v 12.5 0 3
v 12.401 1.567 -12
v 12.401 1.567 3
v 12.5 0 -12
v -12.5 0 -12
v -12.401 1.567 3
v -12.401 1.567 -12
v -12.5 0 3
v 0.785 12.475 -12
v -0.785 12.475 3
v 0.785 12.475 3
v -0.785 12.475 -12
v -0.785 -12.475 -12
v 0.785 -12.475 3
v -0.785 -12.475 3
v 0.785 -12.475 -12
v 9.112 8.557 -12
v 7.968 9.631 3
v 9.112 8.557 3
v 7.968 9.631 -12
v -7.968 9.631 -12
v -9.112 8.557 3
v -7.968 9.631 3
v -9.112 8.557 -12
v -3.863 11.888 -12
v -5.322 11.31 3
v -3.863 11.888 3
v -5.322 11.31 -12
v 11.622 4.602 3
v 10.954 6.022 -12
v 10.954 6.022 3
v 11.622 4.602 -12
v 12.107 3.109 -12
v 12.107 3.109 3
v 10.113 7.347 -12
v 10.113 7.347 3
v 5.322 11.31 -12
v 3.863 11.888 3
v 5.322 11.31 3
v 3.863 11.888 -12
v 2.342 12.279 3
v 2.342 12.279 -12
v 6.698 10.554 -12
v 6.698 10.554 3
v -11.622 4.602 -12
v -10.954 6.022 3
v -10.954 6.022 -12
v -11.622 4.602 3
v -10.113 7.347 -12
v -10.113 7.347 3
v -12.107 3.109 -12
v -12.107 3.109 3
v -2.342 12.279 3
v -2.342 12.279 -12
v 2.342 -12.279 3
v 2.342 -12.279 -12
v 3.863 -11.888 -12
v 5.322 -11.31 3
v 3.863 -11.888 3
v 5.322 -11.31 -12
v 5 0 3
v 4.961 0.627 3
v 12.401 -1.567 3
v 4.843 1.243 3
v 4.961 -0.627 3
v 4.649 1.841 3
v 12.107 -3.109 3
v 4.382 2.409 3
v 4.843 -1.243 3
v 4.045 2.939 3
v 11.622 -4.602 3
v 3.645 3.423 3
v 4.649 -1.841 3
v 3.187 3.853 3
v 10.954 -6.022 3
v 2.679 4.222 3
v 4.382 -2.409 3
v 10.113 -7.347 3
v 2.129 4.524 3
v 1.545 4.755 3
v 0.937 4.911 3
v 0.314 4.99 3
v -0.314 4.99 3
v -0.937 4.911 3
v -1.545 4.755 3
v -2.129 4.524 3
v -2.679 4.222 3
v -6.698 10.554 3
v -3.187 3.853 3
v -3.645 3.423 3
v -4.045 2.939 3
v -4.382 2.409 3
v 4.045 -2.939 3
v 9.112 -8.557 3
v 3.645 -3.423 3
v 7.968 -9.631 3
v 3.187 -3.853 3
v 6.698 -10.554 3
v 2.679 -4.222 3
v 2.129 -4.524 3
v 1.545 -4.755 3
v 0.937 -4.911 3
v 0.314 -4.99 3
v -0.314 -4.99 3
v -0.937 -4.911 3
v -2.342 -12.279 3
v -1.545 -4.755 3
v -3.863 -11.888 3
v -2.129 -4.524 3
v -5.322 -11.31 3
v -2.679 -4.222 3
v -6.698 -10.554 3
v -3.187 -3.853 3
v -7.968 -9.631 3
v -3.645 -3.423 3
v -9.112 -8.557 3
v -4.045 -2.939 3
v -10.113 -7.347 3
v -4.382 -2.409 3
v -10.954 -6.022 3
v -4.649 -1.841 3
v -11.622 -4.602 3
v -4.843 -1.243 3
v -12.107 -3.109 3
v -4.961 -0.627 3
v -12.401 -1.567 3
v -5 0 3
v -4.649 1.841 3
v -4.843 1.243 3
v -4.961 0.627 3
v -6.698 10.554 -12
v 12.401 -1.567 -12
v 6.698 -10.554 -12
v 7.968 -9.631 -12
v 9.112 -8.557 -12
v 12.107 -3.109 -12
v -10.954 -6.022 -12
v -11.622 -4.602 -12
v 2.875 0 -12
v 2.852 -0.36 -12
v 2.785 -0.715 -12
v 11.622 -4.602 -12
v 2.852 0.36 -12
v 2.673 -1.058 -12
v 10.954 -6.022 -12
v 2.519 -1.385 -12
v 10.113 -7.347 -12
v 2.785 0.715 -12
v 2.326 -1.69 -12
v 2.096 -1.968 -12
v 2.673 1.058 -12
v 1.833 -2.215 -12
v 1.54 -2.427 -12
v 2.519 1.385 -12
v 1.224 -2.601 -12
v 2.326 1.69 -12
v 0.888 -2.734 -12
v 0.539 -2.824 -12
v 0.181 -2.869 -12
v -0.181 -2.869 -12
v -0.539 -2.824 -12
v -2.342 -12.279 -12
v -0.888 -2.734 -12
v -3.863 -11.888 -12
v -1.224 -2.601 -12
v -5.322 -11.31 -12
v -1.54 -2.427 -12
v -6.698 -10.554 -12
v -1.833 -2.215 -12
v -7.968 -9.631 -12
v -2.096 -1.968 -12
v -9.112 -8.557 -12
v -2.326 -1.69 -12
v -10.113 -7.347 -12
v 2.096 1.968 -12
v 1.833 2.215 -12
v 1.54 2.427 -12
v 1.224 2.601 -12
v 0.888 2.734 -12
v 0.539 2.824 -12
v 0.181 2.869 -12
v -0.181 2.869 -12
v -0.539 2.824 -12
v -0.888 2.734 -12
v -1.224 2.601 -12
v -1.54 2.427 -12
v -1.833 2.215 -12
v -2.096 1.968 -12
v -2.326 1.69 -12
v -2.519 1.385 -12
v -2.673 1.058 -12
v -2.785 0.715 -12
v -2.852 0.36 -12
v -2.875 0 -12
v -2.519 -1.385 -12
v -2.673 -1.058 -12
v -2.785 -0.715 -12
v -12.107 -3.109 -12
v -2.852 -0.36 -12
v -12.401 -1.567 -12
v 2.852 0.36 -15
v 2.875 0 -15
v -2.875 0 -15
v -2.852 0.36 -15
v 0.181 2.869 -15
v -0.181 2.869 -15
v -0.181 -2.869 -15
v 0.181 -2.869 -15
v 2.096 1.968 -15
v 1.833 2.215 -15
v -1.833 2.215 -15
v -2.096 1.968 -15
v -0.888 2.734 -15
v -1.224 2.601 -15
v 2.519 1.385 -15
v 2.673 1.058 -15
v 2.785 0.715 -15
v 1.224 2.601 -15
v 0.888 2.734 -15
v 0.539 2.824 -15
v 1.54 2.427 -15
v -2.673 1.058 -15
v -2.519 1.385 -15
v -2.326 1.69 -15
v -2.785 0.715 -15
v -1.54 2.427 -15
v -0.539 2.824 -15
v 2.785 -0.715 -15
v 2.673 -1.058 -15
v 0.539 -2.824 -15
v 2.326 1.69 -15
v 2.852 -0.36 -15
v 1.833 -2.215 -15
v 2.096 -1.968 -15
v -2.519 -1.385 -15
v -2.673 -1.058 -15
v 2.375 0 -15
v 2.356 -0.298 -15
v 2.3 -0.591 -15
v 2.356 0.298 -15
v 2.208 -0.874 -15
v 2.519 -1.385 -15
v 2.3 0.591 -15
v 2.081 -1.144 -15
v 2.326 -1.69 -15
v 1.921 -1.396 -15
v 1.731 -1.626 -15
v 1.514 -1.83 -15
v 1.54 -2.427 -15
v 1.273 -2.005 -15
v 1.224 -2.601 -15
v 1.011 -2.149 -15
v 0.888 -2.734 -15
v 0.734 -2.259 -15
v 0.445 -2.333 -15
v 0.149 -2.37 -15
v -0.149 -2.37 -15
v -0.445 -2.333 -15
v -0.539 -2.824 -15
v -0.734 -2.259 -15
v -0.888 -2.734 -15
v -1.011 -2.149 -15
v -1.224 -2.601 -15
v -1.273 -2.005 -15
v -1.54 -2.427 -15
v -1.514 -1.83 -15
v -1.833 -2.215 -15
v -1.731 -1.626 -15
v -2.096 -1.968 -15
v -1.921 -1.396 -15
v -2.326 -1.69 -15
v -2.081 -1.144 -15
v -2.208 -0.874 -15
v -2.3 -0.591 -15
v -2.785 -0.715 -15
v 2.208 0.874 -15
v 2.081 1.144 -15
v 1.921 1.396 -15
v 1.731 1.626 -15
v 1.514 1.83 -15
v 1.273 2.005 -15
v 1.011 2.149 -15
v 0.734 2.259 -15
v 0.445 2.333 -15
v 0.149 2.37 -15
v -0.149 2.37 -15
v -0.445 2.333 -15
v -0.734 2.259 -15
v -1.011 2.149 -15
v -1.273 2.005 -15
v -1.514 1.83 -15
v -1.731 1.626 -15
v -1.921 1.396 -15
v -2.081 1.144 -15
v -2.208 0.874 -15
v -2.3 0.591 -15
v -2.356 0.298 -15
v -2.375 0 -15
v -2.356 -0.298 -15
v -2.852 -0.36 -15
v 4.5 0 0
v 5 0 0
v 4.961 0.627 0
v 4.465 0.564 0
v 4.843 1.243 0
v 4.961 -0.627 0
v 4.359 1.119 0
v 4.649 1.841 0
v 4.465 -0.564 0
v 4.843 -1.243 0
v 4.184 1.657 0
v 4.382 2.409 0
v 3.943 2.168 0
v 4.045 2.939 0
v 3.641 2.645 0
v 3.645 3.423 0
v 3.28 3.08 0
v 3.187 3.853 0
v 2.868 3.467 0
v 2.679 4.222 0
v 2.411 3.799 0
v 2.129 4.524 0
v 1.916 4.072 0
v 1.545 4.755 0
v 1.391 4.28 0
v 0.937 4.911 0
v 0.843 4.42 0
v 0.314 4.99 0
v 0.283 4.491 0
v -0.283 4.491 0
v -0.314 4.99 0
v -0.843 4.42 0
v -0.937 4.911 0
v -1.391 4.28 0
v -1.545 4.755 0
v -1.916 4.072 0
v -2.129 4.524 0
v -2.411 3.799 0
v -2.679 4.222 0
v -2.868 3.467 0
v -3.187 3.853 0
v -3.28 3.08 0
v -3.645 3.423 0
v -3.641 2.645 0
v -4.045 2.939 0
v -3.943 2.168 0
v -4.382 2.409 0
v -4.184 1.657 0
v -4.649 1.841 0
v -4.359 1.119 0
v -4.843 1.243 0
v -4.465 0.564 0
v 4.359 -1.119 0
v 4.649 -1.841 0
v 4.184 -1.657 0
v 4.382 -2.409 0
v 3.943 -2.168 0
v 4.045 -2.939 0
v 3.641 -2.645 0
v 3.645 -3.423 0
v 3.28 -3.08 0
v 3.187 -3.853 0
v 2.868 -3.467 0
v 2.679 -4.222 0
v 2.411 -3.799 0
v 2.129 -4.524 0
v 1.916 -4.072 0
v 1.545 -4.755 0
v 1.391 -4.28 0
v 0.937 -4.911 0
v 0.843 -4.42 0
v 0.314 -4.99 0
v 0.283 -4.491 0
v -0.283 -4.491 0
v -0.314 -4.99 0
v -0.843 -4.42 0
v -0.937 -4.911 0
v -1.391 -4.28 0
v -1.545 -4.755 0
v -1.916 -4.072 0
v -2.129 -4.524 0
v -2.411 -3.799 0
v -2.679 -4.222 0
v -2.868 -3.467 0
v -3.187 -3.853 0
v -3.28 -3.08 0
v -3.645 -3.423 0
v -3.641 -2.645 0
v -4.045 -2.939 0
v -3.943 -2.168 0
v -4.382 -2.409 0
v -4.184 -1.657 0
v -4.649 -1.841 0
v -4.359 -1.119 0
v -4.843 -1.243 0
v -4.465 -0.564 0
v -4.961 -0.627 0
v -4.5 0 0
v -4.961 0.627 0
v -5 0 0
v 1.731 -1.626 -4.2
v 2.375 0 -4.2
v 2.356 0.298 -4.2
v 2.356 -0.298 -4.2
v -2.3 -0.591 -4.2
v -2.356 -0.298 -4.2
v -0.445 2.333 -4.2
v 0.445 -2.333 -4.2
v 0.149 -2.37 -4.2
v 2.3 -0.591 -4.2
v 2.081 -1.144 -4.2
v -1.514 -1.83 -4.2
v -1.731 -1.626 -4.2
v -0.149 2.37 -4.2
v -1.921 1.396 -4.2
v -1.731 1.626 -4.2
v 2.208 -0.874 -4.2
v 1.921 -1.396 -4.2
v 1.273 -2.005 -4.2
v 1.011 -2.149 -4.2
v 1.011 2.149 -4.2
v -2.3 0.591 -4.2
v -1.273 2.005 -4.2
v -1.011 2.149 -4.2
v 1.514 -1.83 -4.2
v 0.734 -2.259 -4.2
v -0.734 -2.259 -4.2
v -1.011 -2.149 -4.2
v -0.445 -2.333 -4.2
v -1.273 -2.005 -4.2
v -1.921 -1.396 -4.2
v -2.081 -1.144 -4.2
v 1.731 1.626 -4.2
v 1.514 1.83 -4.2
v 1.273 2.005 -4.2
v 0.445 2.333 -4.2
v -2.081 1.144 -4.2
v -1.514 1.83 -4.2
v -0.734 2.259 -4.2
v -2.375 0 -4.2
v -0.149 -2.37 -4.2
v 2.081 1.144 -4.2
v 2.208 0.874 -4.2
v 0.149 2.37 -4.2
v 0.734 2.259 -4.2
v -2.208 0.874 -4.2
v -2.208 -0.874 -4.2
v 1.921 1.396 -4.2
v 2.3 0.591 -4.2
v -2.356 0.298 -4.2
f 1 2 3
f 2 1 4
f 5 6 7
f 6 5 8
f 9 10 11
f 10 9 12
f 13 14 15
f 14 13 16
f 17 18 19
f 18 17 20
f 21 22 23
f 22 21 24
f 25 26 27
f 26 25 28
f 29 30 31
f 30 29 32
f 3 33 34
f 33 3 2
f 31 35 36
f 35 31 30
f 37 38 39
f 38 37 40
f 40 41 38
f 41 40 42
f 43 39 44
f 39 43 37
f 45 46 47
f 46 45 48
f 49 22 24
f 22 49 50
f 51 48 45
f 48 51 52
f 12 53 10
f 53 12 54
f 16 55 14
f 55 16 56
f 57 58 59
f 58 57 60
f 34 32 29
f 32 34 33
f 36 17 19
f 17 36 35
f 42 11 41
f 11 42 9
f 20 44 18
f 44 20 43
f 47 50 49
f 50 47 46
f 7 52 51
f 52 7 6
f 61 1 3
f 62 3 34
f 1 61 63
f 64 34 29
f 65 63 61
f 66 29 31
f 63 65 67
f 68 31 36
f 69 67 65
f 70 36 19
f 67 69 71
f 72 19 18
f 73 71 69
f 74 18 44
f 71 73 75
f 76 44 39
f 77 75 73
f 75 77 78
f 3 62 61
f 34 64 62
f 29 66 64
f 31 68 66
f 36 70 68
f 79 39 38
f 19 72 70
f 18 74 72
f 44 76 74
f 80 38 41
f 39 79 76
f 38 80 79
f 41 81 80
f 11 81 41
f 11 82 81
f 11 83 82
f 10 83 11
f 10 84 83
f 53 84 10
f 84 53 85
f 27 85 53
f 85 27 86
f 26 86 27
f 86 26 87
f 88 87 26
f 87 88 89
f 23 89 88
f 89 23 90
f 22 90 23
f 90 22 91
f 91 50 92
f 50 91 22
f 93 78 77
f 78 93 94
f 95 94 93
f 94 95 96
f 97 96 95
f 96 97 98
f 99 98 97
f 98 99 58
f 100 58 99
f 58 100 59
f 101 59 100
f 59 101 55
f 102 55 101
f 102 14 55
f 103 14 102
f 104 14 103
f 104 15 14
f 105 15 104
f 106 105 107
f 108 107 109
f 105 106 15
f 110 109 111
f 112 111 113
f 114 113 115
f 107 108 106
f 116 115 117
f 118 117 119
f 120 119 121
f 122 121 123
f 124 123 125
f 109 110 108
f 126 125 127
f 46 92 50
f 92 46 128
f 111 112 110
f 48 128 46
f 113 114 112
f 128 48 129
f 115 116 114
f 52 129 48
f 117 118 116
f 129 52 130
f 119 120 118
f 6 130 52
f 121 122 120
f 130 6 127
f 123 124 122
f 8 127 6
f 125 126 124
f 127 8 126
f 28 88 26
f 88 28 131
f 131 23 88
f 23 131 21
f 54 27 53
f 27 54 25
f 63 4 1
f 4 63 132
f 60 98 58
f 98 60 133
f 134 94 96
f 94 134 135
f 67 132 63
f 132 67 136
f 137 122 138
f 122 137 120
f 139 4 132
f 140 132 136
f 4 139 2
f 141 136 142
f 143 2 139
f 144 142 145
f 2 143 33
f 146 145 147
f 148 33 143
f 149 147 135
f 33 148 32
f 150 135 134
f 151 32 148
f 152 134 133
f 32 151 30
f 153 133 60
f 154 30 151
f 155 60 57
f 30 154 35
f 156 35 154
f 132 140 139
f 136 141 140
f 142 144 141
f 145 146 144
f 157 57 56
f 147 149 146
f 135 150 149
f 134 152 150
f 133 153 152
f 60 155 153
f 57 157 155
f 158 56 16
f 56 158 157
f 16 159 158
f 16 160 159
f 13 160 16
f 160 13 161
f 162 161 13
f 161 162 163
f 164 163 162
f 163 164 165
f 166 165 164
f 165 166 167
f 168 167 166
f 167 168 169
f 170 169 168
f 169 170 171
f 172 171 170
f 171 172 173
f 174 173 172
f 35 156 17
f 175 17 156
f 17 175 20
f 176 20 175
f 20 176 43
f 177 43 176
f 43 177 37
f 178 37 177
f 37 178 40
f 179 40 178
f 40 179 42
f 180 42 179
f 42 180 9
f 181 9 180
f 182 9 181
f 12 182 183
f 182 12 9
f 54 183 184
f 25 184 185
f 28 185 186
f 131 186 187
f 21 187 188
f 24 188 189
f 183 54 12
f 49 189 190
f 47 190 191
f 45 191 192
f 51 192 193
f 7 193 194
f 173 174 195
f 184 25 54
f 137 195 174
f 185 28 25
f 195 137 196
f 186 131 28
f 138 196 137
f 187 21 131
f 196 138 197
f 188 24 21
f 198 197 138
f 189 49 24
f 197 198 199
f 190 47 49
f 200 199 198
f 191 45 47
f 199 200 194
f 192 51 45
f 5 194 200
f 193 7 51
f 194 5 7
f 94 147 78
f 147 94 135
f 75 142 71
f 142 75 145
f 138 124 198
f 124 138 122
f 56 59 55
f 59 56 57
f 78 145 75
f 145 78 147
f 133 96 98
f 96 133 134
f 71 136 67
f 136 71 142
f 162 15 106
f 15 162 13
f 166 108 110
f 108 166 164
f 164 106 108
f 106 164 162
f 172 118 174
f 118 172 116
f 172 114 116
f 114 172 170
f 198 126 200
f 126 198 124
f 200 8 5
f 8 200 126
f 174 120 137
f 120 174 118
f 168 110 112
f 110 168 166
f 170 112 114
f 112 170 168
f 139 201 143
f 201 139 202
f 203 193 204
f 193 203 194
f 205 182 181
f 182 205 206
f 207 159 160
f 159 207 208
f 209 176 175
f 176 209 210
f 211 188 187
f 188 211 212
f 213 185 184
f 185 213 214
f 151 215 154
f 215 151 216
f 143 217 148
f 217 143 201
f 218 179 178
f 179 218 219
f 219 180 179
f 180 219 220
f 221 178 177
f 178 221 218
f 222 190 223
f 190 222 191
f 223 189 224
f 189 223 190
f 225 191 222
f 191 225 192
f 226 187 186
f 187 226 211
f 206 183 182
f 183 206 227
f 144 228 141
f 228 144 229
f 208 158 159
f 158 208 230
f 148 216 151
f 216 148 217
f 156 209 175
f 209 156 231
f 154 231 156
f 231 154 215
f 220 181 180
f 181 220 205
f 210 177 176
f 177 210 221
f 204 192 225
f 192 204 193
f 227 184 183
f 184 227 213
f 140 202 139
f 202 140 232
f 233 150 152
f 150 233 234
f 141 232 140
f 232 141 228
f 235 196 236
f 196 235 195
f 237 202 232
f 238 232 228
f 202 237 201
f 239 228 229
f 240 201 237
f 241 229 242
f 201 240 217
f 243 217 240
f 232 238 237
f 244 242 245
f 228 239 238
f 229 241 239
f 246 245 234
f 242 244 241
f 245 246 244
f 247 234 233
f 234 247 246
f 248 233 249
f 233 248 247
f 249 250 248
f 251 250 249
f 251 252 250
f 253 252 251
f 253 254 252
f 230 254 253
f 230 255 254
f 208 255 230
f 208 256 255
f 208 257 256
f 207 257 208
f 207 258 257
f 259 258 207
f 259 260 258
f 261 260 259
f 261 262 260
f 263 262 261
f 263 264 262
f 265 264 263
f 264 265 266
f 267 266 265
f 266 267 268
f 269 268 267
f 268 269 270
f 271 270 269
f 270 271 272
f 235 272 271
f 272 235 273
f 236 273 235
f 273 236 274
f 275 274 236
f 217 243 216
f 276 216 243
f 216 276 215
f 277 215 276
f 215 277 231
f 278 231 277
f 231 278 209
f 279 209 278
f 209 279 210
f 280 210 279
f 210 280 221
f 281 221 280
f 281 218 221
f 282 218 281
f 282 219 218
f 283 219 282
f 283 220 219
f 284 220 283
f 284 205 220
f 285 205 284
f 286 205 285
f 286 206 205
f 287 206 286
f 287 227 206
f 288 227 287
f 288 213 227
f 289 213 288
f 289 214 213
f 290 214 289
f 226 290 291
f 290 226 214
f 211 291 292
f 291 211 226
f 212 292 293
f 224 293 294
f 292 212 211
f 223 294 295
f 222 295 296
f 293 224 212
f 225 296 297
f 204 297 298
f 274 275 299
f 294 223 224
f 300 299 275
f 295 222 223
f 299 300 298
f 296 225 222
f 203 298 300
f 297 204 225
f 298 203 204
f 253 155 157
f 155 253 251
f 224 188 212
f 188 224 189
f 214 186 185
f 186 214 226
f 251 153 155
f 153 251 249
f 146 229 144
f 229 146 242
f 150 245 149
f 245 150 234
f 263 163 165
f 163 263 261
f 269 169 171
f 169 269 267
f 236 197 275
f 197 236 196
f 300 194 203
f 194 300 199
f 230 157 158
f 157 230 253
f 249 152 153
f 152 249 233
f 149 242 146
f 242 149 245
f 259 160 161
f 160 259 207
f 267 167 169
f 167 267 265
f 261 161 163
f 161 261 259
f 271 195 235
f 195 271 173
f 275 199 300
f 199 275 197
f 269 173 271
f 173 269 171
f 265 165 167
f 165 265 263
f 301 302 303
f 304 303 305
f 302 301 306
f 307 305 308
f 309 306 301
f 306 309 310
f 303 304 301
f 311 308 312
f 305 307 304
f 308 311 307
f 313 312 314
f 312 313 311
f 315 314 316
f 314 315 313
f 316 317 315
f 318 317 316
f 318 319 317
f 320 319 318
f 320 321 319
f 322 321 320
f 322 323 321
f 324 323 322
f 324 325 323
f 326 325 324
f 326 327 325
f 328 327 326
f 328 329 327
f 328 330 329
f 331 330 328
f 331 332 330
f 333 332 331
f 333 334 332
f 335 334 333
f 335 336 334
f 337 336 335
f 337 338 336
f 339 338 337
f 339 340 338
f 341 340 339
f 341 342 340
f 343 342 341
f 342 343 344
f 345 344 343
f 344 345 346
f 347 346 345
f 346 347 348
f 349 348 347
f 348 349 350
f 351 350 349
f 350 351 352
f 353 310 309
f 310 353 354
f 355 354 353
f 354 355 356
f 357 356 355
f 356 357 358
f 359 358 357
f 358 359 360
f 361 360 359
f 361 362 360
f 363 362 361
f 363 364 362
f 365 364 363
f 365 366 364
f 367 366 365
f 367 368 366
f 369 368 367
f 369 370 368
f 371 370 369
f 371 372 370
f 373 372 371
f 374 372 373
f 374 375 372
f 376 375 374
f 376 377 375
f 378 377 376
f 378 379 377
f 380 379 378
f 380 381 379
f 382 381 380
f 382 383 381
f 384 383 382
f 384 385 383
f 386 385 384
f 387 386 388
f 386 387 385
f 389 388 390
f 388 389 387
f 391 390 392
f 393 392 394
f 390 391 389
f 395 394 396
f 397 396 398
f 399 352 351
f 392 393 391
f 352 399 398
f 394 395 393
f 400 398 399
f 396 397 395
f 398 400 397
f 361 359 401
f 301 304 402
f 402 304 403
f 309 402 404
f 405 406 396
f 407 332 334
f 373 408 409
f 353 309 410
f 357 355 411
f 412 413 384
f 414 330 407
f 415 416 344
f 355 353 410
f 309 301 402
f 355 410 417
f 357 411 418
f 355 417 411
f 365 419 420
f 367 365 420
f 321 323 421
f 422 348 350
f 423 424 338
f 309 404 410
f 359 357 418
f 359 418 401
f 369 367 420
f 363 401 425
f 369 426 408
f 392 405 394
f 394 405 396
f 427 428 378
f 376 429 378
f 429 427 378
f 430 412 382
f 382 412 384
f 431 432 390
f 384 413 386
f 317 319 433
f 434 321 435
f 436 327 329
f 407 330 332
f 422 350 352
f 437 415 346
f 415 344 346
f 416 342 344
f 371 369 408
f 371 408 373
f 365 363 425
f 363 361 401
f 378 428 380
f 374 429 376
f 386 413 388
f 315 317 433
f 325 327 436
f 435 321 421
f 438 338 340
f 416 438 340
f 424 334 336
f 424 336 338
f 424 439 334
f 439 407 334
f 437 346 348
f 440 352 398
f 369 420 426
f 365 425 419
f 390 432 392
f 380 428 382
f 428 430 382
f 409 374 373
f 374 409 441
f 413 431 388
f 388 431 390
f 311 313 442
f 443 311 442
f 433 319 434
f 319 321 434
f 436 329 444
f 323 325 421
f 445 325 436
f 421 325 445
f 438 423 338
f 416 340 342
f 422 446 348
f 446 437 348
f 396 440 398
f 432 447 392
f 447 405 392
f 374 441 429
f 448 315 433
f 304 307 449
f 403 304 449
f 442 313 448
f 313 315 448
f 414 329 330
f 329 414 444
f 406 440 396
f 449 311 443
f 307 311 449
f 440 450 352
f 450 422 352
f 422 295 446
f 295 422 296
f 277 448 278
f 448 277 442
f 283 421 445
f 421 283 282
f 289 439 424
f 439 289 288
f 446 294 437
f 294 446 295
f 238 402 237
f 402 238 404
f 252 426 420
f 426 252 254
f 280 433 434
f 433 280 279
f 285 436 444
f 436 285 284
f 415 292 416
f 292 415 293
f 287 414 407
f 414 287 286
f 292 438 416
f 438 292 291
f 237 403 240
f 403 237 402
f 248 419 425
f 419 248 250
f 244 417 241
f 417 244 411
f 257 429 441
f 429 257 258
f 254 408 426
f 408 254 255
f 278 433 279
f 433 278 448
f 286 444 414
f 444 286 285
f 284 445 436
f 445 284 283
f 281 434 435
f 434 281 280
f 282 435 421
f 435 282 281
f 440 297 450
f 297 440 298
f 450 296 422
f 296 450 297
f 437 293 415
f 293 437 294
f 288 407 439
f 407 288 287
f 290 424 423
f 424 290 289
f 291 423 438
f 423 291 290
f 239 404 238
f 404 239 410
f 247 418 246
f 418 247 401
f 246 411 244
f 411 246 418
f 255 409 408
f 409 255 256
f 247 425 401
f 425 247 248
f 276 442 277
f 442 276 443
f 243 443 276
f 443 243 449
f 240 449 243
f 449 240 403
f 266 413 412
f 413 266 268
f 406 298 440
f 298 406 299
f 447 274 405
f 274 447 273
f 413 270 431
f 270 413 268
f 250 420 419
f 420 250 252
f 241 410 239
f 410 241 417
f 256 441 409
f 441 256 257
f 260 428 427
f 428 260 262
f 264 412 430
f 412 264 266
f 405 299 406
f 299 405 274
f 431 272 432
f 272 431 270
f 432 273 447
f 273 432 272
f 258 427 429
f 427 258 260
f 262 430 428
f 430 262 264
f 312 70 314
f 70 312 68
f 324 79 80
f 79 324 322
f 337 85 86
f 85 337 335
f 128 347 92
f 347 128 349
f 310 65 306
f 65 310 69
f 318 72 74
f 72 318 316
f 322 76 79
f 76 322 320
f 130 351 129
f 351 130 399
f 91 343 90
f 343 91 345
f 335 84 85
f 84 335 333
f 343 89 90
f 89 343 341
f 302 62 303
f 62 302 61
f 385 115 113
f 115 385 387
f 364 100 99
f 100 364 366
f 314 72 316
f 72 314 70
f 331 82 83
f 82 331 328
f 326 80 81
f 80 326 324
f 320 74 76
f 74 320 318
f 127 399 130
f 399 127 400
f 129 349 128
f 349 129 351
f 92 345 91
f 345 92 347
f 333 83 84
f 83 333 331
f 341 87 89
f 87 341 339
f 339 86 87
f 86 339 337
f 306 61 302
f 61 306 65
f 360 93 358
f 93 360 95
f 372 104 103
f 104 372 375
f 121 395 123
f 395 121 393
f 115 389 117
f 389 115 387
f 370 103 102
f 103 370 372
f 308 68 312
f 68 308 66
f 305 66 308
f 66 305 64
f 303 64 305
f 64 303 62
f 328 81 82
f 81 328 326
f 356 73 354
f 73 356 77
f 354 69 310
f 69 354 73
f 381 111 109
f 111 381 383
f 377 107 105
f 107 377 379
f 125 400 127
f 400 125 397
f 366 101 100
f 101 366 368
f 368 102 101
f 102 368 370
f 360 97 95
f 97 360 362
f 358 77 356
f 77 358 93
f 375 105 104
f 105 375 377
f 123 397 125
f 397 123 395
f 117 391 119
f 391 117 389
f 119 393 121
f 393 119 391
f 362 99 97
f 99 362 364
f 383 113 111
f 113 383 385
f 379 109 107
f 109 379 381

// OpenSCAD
$fn = 50;

difference() {
	union() {
		translate(v = [0, 0, -12.0]) {
			cylinder(h = 15, r = 12.5);
		}
		#translate(v = [0, 0, -15.0]) {
			cylinder(h = 15, r = 2.875);
		}
	}
	union() {
		translate(v = [0, 0, 0]) {
			rotate(a = [0, 0, 0]) {
				difference() {
					union() {
						translate(v = [0, 0, -15.0]) {
							cylinder(h = 15, r = 2.25);
						}
						translate(v = [0, 0, -4.2]) {
							cylinder(h = 4.2, r1 = 2.375, r2 = 4.5);
						}
						translate(v = [0, 0, -15.0]) {
							cylinder(h = 15, r = 2.375);
						}
						translate(v = [0, 0, -15.0]) {
							cylinder(h = 15, r = 2.25);
						}
					}
					union();
				}
			}
		}
		#cylinder(h = 3, r = 5.0);
	}
}
